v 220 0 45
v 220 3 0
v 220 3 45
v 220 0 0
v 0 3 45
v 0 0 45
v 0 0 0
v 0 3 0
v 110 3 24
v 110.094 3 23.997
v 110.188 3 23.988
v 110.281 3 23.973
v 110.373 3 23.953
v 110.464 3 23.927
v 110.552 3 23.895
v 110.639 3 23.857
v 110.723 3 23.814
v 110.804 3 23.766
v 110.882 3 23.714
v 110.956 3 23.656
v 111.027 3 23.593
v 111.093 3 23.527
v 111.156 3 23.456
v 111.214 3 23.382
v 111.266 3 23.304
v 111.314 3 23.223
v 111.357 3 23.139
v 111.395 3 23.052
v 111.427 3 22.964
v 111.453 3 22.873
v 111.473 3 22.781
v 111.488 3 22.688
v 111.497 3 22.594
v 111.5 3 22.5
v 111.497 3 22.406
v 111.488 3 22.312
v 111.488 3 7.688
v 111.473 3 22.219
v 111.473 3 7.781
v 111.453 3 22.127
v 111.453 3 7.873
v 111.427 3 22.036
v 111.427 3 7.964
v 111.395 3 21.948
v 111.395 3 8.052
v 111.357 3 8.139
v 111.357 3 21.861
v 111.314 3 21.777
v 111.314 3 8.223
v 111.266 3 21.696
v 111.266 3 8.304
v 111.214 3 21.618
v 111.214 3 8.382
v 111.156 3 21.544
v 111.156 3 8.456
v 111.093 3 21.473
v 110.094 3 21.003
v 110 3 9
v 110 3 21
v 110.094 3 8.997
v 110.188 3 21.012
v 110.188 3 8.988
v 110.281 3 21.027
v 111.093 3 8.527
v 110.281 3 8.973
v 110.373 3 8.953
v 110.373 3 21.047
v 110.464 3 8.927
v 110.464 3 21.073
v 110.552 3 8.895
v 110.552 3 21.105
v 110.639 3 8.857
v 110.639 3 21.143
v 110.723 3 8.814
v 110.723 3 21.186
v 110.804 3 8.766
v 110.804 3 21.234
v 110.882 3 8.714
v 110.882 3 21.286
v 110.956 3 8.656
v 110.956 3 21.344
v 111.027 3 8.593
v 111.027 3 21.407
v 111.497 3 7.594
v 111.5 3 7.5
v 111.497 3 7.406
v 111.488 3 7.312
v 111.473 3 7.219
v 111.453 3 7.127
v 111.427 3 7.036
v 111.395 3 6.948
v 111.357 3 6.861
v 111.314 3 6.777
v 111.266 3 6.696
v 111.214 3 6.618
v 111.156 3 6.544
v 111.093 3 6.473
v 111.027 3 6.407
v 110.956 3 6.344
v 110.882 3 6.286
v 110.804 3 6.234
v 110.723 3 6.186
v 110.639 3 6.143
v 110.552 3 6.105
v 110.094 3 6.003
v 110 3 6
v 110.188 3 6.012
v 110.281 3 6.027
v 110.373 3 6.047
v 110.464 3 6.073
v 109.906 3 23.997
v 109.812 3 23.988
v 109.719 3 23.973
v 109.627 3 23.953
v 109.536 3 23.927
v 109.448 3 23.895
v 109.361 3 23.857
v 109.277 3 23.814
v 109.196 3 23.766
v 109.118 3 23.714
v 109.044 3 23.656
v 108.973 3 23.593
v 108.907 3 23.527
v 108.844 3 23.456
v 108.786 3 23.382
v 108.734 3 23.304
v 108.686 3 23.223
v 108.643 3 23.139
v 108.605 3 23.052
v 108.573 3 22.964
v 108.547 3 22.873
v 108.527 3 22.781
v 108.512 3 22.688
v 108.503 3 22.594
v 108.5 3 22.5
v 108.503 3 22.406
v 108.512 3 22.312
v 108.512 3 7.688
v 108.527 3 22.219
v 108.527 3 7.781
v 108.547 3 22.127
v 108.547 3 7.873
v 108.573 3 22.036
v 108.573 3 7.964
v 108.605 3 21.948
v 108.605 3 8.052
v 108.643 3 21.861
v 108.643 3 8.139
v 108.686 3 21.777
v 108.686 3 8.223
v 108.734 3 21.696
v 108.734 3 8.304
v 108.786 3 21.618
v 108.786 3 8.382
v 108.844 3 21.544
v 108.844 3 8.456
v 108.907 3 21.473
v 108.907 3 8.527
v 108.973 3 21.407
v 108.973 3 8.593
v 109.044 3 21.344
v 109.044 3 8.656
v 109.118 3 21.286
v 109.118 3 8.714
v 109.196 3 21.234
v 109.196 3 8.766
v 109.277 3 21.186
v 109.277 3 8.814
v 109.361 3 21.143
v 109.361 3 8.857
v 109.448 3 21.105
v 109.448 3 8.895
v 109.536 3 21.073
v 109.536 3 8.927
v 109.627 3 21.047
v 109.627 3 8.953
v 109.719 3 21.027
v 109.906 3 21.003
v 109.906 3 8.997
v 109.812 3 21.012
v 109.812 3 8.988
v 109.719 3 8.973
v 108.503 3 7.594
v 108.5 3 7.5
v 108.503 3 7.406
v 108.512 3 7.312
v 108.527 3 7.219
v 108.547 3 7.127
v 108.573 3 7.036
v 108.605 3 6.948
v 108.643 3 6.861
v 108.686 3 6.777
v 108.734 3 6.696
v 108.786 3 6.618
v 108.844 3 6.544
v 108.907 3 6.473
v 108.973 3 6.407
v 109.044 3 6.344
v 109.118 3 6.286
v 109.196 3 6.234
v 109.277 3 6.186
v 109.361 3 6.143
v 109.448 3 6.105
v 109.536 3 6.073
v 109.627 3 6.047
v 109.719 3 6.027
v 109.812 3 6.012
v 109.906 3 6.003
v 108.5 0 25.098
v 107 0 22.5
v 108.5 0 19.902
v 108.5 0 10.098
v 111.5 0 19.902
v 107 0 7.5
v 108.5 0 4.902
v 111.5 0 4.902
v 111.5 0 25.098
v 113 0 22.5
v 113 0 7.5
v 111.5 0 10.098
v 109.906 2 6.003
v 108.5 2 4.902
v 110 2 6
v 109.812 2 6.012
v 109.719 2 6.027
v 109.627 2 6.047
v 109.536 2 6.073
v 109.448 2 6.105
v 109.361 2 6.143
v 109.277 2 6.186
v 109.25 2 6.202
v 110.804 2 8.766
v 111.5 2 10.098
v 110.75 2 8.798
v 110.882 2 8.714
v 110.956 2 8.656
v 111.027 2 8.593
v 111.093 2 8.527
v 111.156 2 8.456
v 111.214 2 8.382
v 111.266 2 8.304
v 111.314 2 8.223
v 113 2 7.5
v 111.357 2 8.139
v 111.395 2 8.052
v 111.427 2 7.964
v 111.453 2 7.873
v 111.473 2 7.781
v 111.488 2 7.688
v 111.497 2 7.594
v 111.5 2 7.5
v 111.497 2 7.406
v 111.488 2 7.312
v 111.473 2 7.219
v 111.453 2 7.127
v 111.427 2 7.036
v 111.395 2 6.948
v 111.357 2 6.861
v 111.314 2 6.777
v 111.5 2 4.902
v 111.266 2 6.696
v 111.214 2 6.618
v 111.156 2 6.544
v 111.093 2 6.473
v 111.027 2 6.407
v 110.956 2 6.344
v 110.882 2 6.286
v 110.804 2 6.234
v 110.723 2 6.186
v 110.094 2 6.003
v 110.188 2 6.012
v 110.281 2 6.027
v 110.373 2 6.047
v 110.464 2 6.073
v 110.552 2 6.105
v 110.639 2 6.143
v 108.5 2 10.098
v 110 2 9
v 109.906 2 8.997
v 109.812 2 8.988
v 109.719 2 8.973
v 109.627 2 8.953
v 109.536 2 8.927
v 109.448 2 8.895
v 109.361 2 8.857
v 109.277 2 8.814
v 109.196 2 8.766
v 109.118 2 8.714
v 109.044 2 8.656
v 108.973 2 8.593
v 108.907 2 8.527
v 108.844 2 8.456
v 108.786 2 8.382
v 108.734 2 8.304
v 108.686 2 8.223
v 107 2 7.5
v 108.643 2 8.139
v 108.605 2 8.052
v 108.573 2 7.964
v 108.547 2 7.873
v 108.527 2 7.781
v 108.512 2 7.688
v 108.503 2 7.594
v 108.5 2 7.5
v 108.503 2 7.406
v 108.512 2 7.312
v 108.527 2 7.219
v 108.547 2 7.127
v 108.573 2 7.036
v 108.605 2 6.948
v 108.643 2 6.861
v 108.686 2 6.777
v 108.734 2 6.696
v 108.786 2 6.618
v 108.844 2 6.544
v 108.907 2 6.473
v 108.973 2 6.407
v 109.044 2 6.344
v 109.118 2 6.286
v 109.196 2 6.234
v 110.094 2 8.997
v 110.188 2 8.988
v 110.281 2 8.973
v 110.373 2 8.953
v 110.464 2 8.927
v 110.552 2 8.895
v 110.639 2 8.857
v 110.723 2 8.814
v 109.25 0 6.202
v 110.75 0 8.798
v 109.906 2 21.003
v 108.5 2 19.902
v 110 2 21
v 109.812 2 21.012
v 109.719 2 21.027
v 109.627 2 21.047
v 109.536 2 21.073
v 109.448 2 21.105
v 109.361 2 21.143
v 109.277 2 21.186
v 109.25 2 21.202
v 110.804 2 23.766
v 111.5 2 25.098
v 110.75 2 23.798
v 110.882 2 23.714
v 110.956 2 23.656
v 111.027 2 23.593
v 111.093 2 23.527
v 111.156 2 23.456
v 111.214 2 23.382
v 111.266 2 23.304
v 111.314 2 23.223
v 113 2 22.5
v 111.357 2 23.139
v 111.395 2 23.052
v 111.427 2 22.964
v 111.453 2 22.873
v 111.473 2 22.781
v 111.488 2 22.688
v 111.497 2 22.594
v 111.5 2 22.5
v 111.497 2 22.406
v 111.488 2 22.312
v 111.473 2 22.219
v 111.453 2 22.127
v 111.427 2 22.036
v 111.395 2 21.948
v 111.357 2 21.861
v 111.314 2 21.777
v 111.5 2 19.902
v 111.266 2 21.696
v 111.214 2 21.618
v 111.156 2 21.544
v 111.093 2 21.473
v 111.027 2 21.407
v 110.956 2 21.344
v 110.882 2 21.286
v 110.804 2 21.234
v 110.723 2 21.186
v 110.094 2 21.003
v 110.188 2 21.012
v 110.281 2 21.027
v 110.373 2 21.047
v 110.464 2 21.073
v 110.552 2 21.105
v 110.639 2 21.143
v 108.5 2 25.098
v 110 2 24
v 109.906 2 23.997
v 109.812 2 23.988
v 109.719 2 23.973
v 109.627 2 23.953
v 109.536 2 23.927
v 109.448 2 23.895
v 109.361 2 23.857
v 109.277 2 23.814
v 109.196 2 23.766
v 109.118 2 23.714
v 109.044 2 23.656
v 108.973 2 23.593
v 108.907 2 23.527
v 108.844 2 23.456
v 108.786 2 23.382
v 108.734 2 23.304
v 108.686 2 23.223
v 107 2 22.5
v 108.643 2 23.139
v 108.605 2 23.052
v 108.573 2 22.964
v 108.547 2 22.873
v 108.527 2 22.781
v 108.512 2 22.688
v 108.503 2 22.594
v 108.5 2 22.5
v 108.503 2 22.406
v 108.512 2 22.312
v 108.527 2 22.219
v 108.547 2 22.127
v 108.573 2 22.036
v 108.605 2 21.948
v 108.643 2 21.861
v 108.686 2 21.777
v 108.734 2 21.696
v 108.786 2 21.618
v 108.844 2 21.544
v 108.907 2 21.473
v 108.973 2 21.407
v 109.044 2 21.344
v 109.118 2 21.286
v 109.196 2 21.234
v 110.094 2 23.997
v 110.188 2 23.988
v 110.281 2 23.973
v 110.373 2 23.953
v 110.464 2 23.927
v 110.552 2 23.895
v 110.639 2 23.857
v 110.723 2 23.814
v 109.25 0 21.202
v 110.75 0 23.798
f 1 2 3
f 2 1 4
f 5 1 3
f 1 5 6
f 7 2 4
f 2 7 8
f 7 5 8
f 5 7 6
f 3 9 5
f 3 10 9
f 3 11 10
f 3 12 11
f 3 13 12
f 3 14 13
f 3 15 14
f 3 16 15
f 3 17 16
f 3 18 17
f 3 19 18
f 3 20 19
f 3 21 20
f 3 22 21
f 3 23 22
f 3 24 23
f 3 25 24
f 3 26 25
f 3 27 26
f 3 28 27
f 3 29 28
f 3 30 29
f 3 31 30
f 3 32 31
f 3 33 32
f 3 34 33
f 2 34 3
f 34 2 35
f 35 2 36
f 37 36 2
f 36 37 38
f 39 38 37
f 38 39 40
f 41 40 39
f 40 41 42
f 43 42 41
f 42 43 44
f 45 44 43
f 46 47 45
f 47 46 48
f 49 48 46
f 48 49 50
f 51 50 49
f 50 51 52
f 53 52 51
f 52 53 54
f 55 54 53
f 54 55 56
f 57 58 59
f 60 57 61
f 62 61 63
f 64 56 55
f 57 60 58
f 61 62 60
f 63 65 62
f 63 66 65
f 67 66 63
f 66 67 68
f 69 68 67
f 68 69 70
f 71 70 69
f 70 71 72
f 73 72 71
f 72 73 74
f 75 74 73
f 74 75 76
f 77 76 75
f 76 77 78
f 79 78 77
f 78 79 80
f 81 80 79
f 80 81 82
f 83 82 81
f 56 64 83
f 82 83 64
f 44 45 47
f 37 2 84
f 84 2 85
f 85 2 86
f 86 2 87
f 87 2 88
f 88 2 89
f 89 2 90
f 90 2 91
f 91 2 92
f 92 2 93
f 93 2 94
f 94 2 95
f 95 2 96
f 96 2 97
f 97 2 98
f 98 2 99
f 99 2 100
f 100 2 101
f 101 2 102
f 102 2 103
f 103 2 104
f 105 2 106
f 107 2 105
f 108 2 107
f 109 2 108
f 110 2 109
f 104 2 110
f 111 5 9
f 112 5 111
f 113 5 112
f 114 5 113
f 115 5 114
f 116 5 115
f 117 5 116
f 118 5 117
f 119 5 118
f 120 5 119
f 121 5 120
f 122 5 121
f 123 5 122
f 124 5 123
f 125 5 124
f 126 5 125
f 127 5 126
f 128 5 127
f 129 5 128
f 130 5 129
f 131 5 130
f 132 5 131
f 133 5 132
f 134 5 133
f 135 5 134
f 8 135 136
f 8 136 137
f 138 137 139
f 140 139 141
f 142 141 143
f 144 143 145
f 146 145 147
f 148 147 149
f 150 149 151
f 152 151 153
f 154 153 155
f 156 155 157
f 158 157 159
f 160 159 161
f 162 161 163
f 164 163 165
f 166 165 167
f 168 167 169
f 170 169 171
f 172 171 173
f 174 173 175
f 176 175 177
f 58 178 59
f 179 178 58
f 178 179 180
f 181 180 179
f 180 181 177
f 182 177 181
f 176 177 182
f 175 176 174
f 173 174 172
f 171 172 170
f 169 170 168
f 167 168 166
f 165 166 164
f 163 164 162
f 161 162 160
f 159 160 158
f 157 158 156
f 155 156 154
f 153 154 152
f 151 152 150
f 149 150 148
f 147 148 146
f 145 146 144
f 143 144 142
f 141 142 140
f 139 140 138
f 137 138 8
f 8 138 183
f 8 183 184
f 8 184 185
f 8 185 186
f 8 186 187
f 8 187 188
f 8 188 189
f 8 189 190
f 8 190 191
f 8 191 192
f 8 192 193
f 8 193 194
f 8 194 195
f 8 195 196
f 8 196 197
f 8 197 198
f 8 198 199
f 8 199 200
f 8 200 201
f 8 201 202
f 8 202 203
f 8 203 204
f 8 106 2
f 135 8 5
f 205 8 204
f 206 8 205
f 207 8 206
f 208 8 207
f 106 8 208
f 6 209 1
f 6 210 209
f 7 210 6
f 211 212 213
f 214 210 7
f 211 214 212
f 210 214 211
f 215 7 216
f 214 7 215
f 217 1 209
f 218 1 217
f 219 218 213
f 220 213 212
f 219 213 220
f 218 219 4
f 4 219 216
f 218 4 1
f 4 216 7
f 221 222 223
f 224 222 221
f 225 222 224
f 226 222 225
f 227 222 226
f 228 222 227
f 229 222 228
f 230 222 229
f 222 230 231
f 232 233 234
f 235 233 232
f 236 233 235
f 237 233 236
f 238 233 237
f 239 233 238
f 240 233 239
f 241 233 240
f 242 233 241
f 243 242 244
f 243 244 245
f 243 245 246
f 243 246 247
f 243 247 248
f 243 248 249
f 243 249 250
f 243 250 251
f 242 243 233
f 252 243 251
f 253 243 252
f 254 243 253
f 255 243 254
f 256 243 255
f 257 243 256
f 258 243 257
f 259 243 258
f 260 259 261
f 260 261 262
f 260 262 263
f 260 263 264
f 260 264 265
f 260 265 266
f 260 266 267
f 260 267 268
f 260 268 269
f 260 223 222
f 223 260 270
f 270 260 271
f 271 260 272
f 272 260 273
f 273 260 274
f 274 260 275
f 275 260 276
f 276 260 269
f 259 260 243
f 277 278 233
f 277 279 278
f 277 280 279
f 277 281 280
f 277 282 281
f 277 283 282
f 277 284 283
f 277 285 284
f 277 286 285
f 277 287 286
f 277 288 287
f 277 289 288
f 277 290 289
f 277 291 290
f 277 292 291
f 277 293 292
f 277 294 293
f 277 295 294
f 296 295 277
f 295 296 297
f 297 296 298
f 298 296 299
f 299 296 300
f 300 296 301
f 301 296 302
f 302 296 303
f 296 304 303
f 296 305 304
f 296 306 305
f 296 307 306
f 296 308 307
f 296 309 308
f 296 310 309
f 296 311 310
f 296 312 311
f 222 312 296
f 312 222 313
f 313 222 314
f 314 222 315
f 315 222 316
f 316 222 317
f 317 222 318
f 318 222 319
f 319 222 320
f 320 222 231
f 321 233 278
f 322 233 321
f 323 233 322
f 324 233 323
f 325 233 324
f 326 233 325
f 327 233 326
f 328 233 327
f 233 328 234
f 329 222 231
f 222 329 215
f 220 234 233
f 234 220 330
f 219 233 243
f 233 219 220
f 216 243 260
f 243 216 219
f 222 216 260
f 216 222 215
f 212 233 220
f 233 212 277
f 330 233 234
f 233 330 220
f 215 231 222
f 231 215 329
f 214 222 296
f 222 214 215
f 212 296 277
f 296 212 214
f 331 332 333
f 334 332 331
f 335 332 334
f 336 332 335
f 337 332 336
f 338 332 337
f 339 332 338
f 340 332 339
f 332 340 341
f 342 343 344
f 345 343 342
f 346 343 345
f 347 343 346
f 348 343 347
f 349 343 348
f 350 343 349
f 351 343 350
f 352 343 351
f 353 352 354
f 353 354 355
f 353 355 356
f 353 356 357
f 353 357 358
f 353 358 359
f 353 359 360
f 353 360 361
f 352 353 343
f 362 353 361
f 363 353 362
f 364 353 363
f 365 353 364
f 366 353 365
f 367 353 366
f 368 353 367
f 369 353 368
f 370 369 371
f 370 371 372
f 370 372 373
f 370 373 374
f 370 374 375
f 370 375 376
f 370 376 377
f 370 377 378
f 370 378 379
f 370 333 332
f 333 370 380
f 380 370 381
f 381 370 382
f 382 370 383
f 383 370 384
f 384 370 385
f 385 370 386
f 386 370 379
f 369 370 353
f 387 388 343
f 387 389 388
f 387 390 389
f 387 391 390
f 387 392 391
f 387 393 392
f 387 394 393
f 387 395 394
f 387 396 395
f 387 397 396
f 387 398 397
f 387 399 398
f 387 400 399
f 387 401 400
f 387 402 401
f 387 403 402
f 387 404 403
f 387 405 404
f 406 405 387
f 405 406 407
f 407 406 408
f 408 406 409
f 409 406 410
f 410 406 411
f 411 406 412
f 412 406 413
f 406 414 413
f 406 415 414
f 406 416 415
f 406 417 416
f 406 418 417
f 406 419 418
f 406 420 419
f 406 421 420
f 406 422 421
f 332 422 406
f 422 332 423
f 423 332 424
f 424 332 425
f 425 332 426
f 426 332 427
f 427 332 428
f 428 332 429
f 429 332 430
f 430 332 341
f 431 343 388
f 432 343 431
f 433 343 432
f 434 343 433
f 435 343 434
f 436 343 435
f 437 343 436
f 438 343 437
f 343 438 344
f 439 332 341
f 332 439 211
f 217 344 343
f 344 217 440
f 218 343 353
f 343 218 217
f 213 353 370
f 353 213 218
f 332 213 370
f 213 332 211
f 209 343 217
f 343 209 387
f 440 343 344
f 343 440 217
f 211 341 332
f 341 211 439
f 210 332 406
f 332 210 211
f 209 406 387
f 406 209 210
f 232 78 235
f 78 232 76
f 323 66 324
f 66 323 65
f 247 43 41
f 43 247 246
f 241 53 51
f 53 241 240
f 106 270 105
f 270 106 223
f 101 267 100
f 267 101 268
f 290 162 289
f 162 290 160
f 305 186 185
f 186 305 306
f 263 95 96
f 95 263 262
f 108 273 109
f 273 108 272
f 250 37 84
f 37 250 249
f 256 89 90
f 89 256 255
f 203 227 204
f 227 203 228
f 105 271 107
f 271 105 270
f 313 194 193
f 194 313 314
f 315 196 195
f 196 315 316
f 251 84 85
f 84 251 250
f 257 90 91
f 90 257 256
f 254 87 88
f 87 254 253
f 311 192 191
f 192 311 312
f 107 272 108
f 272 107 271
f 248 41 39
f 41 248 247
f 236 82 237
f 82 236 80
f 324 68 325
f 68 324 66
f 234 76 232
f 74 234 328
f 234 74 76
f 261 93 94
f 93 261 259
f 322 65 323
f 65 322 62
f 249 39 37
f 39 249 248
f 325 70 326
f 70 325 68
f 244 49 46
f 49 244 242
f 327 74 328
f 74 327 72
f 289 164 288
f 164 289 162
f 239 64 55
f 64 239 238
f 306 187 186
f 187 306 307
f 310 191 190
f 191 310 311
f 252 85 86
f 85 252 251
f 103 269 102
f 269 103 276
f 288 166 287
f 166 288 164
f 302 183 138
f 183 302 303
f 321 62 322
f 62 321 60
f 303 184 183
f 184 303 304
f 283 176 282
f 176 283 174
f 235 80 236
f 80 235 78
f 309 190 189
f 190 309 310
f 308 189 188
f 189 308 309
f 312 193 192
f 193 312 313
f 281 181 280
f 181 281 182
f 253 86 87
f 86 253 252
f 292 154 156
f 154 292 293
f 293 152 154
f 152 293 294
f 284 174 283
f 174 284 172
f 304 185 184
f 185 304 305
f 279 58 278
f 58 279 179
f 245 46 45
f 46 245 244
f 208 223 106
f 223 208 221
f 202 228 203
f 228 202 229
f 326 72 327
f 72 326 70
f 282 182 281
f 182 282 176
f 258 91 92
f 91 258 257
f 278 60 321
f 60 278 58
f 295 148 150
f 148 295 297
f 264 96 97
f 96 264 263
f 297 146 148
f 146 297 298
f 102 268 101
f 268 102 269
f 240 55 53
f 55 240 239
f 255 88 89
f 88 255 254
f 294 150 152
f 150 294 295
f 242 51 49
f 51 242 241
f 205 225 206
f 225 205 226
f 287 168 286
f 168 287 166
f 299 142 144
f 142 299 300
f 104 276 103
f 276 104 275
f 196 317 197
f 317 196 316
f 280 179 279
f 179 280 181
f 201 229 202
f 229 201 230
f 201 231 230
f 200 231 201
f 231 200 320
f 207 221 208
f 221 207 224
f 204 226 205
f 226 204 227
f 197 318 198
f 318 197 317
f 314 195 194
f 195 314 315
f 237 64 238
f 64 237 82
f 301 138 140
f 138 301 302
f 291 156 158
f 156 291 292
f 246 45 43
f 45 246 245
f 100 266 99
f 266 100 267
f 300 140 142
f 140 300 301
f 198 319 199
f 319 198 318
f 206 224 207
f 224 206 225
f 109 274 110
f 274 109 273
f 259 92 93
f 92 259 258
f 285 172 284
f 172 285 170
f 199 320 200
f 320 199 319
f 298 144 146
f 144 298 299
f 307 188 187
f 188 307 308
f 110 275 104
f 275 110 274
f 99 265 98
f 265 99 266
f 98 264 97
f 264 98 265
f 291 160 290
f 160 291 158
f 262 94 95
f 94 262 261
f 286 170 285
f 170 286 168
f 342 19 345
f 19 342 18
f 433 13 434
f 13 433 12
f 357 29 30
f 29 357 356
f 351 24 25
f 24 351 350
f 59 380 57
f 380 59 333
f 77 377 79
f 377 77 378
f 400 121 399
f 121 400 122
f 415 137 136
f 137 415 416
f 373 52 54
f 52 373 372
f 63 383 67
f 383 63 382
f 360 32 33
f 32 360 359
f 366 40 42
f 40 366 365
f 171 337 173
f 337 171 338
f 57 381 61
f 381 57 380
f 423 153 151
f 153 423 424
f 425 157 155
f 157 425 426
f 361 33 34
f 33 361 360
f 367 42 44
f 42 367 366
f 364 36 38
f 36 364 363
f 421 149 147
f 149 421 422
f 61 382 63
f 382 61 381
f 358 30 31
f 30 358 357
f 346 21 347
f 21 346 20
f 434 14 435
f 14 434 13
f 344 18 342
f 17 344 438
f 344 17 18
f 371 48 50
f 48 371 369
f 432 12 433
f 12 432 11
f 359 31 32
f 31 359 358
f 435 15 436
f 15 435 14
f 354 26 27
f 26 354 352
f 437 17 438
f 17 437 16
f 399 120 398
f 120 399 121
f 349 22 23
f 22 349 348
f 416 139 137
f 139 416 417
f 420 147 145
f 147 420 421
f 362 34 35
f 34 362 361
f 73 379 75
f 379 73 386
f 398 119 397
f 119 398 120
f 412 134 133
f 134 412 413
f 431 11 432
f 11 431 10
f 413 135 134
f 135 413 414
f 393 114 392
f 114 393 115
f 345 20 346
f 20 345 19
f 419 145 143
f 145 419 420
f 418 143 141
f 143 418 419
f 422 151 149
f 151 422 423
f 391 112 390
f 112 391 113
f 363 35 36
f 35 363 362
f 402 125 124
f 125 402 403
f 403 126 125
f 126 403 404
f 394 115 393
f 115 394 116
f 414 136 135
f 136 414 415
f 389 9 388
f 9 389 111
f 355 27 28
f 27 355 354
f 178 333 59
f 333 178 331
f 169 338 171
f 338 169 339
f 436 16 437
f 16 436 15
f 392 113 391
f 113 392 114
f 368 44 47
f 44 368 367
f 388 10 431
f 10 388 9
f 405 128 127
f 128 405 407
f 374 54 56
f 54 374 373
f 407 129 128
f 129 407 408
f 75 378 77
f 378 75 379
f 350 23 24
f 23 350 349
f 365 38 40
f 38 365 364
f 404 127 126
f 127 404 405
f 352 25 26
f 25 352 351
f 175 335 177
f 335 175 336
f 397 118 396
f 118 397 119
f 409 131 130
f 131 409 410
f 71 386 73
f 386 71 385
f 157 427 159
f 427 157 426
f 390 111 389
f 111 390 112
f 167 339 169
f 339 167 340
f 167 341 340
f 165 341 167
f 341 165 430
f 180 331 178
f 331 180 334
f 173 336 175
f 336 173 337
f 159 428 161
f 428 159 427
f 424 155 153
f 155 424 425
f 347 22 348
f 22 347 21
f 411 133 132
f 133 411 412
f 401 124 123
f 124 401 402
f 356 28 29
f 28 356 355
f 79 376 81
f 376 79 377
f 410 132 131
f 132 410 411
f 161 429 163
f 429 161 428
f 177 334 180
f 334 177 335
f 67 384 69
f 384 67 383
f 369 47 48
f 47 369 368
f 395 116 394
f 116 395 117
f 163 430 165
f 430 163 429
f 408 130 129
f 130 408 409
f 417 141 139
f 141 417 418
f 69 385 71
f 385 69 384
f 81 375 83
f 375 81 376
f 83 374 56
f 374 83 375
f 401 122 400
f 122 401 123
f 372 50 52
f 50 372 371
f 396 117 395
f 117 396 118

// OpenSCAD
// file: screw.scad
$fn=100;

module screw(screw_head_radius=3, screw_head_height=3, threaded_radius=1.5, threaded_height=10) {
  // screw head
  cylinder(h=screw_head_height, r=screw_head_radius);

  translate([0, 0, screw_head_height]) {
    cylinder(h=threaded_height, r=threaded_radius);
  }
}

// m3x10

screw(screw_head_radius=3, screw_head_height=3, threaded_radius=1.5, threaded_height=10);
// file: hex_nut.scad
// 1.5^2 + y^2 = 3^2
// sqrt(3^2 - 1.5^2)
//       30
//    /   |
// 60  - 90
// cos(30) = x / 3
// x = 3 cos(30)
module hex(side_length=3) {
  points = [[0,0], [side_length, 0], [side_length / 2, side_length * cos(30)]];
  for (i=[0:1:5]) {
    rotate([0,0,i * 60]) polygon(points);
  }
}

module hex_nut(side_length=3, height=2) {
    linear_extrude(height=height) hex(side_length);

}
// main file
use <hex_nut.scad>
use <screw.scad>

filter_x = 110;
filter_z = 44;
top_z = 15;

difference() {

  difference() {
    difference() {
      difference() {
        cube([filter_x * 2, 3, 3 * top_z]);
        translate([filter_x, 0, top_z / 2]) {
          rotate([-90,0,0]) color([1,0,0]) hex_nut();
        }
      }
      translate([filter_x, 0, top_z + top_z / 2]) {
        rotate([-90,0,0]) color([1,0,0]) hex_nut();
      }
    }
    translate([filter_x, 10, top_z / 2]) {
      rotate([90,0,0]) screw(
          screw_head_radius=3,
          screw_head_height=3,
          threaded_radius=1.5,
          threaded_height=10
          );
    }
  }

  translate([filter_x, 10, top_z + top_z / 2]) {
    rotate([90,0,0]) screw(
        screw_head_radius=3,
        screw_head_height=3,
        threaded_radius=1.5,
        threaded_height=10
    );
  }
}
